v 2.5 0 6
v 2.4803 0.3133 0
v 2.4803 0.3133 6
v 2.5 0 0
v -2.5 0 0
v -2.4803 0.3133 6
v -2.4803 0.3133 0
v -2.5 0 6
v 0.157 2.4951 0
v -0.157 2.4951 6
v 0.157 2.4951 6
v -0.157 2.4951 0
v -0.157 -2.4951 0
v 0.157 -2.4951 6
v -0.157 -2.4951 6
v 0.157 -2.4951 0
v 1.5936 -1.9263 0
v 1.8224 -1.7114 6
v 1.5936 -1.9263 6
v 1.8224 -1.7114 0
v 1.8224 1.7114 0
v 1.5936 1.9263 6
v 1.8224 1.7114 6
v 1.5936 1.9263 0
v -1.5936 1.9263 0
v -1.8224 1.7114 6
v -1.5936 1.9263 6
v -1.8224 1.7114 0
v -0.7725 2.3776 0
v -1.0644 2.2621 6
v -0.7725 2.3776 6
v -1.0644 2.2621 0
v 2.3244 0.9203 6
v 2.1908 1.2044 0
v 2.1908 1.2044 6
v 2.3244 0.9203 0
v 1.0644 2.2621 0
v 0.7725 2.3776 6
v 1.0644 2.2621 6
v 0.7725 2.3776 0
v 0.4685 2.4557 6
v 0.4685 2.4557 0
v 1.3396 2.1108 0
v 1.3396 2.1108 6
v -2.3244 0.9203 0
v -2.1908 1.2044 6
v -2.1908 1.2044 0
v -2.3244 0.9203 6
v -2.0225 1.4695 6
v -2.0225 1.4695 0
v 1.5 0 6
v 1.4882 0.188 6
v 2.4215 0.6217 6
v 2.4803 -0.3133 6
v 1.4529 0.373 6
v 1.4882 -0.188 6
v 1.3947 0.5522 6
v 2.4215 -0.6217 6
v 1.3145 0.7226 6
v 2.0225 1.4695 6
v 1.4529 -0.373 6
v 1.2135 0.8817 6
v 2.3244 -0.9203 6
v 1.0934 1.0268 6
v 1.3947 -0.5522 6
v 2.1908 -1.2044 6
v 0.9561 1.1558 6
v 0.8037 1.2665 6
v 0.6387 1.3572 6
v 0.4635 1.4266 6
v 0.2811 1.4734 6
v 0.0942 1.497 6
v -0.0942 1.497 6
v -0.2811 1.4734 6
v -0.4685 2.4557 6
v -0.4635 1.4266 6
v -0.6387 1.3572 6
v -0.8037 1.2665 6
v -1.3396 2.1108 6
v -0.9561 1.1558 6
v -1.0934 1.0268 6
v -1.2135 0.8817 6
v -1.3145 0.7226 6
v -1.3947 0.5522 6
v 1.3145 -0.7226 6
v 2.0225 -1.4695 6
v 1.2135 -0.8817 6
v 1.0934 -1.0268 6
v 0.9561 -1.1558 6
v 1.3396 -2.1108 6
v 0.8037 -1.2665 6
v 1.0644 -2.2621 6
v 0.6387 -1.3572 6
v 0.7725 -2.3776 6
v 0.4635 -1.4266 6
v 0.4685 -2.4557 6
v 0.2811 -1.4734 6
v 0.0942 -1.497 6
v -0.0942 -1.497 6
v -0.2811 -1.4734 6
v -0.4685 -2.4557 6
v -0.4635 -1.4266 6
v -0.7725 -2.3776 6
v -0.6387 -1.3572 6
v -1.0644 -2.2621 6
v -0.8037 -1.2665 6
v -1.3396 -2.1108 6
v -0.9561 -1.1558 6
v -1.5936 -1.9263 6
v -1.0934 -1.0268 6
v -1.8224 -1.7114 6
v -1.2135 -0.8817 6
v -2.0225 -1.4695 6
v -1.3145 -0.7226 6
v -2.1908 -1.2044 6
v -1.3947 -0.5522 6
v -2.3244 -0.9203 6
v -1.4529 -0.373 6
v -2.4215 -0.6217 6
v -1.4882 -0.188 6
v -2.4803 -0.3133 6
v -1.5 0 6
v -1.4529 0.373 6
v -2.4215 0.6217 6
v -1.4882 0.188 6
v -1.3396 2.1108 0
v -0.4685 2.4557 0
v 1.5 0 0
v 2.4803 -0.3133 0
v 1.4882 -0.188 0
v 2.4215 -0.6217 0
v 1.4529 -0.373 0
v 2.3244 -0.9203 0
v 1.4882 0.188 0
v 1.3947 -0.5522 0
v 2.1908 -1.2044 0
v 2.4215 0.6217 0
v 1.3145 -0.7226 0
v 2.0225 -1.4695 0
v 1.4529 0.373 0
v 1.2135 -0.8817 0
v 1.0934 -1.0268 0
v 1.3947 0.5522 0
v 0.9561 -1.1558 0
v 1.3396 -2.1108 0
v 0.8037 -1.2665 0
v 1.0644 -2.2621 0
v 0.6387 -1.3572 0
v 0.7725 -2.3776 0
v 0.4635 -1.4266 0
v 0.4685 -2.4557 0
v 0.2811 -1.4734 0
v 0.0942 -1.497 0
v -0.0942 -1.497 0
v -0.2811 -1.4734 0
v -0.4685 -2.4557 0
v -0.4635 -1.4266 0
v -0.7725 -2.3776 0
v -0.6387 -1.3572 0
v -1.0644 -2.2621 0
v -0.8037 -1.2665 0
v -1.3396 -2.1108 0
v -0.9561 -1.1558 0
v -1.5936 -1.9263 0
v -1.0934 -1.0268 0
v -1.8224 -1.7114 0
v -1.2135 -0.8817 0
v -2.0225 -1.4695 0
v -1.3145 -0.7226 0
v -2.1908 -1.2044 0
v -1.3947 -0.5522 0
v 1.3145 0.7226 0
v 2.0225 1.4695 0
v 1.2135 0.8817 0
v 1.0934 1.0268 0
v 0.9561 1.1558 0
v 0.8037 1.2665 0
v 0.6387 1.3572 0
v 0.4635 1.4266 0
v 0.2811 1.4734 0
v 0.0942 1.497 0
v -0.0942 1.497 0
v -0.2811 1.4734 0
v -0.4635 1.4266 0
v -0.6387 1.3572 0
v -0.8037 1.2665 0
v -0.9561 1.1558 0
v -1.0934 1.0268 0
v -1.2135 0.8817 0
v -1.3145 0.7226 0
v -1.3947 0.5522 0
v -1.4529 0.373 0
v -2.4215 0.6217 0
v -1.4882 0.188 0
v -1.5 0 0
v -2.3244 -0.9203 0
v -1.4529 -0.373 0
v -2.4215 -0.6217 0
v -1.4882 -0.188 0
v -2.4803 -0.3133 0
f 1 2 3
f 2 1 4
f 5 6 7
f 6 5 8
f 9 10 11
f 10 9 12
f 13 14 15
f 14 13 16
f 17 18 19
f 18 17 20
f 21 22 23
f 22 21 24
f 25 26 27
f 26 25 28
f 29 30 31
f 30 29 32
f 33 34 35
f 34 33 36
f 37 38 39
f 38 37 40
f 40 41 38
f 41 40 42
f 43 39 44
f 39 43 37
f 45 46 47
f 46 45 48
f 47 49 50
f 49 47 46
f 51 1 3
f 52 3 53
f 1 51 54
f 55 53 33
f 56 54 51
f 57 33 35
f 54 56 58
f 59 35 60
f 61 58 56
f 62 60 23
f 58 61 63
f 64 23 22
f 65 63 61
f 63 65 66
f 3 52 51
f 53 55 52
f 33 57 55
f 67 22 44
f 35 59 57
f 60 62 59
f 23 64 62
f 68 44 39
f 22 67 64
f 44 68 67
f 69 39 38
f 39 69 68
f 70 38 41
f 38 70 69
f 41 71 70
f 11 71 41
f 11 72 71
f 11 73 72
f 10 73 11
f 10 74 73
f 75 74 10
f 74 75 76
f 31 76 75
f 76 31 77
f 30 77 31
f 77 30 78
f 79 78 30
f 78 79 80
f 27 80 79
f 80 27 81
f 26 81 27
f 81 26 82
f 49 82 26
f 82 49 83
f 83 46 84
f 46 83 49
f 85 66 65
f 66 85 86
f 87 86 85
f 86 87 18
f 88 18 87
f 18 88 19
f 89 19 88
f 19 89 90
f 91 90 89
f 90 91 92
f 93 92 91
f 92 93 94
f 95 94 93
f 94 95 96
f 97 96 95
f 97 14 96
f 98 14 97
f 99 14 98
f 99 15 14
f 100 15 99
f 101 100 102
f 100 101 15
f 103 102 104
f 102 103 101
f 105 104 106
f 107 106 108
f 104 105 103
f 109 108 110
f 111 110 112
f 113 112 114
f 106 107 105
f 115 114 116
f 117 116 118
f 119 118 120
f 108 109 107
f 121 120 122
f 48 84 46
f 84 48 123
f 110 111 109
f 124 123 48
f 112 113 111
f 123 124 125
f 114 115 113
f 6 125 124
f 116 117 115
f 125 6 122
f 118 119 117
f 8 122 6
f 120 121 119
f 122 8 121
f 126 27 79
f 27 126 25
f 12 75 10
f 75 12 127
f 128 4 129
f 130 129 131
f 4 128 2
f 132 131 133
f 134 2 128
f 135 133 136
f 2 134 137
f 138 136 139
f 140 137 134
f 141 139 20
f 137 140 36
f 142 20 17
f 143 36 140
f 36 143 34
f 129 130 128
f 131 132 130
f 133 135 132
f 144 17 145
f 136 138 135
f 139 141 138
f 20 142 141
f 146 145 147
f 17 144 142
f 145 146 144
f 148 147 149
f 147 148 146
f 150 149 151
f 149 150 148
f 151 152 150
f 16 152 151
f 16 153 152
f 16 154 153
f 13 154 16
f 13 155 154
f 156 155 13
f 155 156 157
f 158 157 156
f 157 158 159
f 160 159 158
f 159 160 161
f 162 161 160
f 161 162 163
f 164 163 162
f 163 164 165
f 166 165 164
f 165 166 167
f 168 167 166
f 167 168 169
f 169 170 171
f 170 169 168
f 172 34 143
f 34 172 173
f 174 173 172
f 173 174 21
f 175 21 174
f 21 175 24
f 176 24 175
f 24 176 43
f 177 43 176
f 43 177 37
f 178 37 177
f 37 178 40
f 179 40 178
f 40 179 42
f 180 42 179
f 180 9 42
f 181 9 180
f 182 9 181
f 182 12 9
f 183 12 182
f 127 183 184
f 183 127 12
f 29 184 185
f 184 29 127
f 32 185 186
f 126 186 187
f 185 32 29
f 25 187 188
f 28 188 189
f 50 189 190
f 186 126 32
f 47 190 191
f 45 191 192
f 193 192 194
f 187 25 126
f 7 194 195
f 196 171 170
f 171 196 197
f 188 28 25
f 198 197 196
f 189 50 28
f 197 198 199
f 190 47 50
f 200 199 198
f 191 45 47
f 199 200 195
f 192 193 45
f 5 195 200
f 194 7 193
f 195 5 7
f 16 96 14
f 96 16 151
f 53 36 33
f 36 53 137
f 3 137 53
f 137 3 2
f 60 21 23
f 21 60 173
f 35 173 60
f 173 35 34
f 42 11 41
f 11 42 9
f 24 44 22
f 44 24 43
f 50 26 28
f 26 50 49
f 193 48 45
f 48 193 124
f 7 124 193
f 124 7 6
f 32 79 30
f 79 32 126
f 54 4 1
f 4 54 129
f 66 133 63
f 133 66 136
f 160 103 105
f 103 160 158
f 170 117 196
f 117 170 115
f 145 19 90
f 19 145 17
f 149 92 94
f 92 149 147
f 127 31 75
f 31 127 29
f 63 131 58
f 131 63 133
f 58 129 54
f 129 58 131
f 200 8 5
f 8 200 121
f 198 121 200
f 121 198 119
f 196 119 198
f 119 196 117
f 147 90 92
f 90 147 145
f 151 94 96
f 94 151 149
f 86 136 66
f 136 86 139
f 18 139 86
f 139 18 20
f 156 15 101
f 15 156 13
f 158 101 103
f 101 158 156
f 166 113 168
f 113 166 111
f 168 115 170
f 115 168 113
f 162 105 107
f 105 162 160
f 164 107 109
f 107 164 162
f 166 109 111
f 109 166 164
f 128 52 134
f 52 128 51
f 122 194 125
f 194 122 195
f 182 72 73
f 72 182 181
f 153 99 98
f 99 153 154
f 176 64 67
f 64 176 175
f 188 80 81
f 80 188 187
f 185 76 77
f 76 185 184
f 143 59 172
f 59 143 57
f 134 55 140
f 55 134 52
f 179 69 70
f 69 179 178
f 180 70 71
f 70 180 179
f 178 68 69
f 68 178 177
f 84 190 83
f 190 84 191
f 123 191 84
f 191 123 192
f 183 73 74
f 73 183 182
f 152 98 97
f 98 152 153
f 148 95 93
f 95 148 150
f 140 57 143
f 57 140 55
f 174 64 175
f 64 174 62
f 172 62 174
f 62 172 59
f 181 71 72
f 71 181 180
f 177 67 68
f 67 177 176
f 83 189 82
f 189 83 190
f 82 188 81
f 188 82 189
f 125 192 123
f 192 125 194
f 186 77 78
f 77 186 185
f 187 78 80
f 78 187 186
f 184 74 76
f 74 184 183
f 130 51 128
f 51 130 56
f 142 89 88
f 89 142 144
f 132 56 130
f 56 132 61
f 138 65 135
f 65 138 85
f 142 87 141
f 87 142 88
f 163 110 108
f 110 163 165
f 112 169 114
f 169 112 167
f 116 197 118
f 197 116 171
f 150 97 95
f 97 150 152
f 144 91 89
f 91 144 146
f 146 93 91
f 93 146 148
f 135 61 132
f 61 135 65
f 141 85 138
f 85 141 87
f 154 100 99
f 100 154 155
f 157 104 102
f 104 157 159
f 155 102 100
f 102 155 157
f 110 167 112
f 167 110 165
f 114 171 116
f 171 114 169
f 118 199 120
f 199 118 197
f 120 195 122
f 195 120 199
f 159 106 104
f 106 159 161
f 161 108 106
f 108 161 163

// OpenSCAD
//chip: 1.83mm
//screw:11.8mm
//10mm of free space
//4.5mm of hole
//6mm height
$fn = 50;
difference(){
    cylinder(h = 6, d = 5);
    translate([0,0,-0.05])cylinder(h = 6.1, d = 3);
}
